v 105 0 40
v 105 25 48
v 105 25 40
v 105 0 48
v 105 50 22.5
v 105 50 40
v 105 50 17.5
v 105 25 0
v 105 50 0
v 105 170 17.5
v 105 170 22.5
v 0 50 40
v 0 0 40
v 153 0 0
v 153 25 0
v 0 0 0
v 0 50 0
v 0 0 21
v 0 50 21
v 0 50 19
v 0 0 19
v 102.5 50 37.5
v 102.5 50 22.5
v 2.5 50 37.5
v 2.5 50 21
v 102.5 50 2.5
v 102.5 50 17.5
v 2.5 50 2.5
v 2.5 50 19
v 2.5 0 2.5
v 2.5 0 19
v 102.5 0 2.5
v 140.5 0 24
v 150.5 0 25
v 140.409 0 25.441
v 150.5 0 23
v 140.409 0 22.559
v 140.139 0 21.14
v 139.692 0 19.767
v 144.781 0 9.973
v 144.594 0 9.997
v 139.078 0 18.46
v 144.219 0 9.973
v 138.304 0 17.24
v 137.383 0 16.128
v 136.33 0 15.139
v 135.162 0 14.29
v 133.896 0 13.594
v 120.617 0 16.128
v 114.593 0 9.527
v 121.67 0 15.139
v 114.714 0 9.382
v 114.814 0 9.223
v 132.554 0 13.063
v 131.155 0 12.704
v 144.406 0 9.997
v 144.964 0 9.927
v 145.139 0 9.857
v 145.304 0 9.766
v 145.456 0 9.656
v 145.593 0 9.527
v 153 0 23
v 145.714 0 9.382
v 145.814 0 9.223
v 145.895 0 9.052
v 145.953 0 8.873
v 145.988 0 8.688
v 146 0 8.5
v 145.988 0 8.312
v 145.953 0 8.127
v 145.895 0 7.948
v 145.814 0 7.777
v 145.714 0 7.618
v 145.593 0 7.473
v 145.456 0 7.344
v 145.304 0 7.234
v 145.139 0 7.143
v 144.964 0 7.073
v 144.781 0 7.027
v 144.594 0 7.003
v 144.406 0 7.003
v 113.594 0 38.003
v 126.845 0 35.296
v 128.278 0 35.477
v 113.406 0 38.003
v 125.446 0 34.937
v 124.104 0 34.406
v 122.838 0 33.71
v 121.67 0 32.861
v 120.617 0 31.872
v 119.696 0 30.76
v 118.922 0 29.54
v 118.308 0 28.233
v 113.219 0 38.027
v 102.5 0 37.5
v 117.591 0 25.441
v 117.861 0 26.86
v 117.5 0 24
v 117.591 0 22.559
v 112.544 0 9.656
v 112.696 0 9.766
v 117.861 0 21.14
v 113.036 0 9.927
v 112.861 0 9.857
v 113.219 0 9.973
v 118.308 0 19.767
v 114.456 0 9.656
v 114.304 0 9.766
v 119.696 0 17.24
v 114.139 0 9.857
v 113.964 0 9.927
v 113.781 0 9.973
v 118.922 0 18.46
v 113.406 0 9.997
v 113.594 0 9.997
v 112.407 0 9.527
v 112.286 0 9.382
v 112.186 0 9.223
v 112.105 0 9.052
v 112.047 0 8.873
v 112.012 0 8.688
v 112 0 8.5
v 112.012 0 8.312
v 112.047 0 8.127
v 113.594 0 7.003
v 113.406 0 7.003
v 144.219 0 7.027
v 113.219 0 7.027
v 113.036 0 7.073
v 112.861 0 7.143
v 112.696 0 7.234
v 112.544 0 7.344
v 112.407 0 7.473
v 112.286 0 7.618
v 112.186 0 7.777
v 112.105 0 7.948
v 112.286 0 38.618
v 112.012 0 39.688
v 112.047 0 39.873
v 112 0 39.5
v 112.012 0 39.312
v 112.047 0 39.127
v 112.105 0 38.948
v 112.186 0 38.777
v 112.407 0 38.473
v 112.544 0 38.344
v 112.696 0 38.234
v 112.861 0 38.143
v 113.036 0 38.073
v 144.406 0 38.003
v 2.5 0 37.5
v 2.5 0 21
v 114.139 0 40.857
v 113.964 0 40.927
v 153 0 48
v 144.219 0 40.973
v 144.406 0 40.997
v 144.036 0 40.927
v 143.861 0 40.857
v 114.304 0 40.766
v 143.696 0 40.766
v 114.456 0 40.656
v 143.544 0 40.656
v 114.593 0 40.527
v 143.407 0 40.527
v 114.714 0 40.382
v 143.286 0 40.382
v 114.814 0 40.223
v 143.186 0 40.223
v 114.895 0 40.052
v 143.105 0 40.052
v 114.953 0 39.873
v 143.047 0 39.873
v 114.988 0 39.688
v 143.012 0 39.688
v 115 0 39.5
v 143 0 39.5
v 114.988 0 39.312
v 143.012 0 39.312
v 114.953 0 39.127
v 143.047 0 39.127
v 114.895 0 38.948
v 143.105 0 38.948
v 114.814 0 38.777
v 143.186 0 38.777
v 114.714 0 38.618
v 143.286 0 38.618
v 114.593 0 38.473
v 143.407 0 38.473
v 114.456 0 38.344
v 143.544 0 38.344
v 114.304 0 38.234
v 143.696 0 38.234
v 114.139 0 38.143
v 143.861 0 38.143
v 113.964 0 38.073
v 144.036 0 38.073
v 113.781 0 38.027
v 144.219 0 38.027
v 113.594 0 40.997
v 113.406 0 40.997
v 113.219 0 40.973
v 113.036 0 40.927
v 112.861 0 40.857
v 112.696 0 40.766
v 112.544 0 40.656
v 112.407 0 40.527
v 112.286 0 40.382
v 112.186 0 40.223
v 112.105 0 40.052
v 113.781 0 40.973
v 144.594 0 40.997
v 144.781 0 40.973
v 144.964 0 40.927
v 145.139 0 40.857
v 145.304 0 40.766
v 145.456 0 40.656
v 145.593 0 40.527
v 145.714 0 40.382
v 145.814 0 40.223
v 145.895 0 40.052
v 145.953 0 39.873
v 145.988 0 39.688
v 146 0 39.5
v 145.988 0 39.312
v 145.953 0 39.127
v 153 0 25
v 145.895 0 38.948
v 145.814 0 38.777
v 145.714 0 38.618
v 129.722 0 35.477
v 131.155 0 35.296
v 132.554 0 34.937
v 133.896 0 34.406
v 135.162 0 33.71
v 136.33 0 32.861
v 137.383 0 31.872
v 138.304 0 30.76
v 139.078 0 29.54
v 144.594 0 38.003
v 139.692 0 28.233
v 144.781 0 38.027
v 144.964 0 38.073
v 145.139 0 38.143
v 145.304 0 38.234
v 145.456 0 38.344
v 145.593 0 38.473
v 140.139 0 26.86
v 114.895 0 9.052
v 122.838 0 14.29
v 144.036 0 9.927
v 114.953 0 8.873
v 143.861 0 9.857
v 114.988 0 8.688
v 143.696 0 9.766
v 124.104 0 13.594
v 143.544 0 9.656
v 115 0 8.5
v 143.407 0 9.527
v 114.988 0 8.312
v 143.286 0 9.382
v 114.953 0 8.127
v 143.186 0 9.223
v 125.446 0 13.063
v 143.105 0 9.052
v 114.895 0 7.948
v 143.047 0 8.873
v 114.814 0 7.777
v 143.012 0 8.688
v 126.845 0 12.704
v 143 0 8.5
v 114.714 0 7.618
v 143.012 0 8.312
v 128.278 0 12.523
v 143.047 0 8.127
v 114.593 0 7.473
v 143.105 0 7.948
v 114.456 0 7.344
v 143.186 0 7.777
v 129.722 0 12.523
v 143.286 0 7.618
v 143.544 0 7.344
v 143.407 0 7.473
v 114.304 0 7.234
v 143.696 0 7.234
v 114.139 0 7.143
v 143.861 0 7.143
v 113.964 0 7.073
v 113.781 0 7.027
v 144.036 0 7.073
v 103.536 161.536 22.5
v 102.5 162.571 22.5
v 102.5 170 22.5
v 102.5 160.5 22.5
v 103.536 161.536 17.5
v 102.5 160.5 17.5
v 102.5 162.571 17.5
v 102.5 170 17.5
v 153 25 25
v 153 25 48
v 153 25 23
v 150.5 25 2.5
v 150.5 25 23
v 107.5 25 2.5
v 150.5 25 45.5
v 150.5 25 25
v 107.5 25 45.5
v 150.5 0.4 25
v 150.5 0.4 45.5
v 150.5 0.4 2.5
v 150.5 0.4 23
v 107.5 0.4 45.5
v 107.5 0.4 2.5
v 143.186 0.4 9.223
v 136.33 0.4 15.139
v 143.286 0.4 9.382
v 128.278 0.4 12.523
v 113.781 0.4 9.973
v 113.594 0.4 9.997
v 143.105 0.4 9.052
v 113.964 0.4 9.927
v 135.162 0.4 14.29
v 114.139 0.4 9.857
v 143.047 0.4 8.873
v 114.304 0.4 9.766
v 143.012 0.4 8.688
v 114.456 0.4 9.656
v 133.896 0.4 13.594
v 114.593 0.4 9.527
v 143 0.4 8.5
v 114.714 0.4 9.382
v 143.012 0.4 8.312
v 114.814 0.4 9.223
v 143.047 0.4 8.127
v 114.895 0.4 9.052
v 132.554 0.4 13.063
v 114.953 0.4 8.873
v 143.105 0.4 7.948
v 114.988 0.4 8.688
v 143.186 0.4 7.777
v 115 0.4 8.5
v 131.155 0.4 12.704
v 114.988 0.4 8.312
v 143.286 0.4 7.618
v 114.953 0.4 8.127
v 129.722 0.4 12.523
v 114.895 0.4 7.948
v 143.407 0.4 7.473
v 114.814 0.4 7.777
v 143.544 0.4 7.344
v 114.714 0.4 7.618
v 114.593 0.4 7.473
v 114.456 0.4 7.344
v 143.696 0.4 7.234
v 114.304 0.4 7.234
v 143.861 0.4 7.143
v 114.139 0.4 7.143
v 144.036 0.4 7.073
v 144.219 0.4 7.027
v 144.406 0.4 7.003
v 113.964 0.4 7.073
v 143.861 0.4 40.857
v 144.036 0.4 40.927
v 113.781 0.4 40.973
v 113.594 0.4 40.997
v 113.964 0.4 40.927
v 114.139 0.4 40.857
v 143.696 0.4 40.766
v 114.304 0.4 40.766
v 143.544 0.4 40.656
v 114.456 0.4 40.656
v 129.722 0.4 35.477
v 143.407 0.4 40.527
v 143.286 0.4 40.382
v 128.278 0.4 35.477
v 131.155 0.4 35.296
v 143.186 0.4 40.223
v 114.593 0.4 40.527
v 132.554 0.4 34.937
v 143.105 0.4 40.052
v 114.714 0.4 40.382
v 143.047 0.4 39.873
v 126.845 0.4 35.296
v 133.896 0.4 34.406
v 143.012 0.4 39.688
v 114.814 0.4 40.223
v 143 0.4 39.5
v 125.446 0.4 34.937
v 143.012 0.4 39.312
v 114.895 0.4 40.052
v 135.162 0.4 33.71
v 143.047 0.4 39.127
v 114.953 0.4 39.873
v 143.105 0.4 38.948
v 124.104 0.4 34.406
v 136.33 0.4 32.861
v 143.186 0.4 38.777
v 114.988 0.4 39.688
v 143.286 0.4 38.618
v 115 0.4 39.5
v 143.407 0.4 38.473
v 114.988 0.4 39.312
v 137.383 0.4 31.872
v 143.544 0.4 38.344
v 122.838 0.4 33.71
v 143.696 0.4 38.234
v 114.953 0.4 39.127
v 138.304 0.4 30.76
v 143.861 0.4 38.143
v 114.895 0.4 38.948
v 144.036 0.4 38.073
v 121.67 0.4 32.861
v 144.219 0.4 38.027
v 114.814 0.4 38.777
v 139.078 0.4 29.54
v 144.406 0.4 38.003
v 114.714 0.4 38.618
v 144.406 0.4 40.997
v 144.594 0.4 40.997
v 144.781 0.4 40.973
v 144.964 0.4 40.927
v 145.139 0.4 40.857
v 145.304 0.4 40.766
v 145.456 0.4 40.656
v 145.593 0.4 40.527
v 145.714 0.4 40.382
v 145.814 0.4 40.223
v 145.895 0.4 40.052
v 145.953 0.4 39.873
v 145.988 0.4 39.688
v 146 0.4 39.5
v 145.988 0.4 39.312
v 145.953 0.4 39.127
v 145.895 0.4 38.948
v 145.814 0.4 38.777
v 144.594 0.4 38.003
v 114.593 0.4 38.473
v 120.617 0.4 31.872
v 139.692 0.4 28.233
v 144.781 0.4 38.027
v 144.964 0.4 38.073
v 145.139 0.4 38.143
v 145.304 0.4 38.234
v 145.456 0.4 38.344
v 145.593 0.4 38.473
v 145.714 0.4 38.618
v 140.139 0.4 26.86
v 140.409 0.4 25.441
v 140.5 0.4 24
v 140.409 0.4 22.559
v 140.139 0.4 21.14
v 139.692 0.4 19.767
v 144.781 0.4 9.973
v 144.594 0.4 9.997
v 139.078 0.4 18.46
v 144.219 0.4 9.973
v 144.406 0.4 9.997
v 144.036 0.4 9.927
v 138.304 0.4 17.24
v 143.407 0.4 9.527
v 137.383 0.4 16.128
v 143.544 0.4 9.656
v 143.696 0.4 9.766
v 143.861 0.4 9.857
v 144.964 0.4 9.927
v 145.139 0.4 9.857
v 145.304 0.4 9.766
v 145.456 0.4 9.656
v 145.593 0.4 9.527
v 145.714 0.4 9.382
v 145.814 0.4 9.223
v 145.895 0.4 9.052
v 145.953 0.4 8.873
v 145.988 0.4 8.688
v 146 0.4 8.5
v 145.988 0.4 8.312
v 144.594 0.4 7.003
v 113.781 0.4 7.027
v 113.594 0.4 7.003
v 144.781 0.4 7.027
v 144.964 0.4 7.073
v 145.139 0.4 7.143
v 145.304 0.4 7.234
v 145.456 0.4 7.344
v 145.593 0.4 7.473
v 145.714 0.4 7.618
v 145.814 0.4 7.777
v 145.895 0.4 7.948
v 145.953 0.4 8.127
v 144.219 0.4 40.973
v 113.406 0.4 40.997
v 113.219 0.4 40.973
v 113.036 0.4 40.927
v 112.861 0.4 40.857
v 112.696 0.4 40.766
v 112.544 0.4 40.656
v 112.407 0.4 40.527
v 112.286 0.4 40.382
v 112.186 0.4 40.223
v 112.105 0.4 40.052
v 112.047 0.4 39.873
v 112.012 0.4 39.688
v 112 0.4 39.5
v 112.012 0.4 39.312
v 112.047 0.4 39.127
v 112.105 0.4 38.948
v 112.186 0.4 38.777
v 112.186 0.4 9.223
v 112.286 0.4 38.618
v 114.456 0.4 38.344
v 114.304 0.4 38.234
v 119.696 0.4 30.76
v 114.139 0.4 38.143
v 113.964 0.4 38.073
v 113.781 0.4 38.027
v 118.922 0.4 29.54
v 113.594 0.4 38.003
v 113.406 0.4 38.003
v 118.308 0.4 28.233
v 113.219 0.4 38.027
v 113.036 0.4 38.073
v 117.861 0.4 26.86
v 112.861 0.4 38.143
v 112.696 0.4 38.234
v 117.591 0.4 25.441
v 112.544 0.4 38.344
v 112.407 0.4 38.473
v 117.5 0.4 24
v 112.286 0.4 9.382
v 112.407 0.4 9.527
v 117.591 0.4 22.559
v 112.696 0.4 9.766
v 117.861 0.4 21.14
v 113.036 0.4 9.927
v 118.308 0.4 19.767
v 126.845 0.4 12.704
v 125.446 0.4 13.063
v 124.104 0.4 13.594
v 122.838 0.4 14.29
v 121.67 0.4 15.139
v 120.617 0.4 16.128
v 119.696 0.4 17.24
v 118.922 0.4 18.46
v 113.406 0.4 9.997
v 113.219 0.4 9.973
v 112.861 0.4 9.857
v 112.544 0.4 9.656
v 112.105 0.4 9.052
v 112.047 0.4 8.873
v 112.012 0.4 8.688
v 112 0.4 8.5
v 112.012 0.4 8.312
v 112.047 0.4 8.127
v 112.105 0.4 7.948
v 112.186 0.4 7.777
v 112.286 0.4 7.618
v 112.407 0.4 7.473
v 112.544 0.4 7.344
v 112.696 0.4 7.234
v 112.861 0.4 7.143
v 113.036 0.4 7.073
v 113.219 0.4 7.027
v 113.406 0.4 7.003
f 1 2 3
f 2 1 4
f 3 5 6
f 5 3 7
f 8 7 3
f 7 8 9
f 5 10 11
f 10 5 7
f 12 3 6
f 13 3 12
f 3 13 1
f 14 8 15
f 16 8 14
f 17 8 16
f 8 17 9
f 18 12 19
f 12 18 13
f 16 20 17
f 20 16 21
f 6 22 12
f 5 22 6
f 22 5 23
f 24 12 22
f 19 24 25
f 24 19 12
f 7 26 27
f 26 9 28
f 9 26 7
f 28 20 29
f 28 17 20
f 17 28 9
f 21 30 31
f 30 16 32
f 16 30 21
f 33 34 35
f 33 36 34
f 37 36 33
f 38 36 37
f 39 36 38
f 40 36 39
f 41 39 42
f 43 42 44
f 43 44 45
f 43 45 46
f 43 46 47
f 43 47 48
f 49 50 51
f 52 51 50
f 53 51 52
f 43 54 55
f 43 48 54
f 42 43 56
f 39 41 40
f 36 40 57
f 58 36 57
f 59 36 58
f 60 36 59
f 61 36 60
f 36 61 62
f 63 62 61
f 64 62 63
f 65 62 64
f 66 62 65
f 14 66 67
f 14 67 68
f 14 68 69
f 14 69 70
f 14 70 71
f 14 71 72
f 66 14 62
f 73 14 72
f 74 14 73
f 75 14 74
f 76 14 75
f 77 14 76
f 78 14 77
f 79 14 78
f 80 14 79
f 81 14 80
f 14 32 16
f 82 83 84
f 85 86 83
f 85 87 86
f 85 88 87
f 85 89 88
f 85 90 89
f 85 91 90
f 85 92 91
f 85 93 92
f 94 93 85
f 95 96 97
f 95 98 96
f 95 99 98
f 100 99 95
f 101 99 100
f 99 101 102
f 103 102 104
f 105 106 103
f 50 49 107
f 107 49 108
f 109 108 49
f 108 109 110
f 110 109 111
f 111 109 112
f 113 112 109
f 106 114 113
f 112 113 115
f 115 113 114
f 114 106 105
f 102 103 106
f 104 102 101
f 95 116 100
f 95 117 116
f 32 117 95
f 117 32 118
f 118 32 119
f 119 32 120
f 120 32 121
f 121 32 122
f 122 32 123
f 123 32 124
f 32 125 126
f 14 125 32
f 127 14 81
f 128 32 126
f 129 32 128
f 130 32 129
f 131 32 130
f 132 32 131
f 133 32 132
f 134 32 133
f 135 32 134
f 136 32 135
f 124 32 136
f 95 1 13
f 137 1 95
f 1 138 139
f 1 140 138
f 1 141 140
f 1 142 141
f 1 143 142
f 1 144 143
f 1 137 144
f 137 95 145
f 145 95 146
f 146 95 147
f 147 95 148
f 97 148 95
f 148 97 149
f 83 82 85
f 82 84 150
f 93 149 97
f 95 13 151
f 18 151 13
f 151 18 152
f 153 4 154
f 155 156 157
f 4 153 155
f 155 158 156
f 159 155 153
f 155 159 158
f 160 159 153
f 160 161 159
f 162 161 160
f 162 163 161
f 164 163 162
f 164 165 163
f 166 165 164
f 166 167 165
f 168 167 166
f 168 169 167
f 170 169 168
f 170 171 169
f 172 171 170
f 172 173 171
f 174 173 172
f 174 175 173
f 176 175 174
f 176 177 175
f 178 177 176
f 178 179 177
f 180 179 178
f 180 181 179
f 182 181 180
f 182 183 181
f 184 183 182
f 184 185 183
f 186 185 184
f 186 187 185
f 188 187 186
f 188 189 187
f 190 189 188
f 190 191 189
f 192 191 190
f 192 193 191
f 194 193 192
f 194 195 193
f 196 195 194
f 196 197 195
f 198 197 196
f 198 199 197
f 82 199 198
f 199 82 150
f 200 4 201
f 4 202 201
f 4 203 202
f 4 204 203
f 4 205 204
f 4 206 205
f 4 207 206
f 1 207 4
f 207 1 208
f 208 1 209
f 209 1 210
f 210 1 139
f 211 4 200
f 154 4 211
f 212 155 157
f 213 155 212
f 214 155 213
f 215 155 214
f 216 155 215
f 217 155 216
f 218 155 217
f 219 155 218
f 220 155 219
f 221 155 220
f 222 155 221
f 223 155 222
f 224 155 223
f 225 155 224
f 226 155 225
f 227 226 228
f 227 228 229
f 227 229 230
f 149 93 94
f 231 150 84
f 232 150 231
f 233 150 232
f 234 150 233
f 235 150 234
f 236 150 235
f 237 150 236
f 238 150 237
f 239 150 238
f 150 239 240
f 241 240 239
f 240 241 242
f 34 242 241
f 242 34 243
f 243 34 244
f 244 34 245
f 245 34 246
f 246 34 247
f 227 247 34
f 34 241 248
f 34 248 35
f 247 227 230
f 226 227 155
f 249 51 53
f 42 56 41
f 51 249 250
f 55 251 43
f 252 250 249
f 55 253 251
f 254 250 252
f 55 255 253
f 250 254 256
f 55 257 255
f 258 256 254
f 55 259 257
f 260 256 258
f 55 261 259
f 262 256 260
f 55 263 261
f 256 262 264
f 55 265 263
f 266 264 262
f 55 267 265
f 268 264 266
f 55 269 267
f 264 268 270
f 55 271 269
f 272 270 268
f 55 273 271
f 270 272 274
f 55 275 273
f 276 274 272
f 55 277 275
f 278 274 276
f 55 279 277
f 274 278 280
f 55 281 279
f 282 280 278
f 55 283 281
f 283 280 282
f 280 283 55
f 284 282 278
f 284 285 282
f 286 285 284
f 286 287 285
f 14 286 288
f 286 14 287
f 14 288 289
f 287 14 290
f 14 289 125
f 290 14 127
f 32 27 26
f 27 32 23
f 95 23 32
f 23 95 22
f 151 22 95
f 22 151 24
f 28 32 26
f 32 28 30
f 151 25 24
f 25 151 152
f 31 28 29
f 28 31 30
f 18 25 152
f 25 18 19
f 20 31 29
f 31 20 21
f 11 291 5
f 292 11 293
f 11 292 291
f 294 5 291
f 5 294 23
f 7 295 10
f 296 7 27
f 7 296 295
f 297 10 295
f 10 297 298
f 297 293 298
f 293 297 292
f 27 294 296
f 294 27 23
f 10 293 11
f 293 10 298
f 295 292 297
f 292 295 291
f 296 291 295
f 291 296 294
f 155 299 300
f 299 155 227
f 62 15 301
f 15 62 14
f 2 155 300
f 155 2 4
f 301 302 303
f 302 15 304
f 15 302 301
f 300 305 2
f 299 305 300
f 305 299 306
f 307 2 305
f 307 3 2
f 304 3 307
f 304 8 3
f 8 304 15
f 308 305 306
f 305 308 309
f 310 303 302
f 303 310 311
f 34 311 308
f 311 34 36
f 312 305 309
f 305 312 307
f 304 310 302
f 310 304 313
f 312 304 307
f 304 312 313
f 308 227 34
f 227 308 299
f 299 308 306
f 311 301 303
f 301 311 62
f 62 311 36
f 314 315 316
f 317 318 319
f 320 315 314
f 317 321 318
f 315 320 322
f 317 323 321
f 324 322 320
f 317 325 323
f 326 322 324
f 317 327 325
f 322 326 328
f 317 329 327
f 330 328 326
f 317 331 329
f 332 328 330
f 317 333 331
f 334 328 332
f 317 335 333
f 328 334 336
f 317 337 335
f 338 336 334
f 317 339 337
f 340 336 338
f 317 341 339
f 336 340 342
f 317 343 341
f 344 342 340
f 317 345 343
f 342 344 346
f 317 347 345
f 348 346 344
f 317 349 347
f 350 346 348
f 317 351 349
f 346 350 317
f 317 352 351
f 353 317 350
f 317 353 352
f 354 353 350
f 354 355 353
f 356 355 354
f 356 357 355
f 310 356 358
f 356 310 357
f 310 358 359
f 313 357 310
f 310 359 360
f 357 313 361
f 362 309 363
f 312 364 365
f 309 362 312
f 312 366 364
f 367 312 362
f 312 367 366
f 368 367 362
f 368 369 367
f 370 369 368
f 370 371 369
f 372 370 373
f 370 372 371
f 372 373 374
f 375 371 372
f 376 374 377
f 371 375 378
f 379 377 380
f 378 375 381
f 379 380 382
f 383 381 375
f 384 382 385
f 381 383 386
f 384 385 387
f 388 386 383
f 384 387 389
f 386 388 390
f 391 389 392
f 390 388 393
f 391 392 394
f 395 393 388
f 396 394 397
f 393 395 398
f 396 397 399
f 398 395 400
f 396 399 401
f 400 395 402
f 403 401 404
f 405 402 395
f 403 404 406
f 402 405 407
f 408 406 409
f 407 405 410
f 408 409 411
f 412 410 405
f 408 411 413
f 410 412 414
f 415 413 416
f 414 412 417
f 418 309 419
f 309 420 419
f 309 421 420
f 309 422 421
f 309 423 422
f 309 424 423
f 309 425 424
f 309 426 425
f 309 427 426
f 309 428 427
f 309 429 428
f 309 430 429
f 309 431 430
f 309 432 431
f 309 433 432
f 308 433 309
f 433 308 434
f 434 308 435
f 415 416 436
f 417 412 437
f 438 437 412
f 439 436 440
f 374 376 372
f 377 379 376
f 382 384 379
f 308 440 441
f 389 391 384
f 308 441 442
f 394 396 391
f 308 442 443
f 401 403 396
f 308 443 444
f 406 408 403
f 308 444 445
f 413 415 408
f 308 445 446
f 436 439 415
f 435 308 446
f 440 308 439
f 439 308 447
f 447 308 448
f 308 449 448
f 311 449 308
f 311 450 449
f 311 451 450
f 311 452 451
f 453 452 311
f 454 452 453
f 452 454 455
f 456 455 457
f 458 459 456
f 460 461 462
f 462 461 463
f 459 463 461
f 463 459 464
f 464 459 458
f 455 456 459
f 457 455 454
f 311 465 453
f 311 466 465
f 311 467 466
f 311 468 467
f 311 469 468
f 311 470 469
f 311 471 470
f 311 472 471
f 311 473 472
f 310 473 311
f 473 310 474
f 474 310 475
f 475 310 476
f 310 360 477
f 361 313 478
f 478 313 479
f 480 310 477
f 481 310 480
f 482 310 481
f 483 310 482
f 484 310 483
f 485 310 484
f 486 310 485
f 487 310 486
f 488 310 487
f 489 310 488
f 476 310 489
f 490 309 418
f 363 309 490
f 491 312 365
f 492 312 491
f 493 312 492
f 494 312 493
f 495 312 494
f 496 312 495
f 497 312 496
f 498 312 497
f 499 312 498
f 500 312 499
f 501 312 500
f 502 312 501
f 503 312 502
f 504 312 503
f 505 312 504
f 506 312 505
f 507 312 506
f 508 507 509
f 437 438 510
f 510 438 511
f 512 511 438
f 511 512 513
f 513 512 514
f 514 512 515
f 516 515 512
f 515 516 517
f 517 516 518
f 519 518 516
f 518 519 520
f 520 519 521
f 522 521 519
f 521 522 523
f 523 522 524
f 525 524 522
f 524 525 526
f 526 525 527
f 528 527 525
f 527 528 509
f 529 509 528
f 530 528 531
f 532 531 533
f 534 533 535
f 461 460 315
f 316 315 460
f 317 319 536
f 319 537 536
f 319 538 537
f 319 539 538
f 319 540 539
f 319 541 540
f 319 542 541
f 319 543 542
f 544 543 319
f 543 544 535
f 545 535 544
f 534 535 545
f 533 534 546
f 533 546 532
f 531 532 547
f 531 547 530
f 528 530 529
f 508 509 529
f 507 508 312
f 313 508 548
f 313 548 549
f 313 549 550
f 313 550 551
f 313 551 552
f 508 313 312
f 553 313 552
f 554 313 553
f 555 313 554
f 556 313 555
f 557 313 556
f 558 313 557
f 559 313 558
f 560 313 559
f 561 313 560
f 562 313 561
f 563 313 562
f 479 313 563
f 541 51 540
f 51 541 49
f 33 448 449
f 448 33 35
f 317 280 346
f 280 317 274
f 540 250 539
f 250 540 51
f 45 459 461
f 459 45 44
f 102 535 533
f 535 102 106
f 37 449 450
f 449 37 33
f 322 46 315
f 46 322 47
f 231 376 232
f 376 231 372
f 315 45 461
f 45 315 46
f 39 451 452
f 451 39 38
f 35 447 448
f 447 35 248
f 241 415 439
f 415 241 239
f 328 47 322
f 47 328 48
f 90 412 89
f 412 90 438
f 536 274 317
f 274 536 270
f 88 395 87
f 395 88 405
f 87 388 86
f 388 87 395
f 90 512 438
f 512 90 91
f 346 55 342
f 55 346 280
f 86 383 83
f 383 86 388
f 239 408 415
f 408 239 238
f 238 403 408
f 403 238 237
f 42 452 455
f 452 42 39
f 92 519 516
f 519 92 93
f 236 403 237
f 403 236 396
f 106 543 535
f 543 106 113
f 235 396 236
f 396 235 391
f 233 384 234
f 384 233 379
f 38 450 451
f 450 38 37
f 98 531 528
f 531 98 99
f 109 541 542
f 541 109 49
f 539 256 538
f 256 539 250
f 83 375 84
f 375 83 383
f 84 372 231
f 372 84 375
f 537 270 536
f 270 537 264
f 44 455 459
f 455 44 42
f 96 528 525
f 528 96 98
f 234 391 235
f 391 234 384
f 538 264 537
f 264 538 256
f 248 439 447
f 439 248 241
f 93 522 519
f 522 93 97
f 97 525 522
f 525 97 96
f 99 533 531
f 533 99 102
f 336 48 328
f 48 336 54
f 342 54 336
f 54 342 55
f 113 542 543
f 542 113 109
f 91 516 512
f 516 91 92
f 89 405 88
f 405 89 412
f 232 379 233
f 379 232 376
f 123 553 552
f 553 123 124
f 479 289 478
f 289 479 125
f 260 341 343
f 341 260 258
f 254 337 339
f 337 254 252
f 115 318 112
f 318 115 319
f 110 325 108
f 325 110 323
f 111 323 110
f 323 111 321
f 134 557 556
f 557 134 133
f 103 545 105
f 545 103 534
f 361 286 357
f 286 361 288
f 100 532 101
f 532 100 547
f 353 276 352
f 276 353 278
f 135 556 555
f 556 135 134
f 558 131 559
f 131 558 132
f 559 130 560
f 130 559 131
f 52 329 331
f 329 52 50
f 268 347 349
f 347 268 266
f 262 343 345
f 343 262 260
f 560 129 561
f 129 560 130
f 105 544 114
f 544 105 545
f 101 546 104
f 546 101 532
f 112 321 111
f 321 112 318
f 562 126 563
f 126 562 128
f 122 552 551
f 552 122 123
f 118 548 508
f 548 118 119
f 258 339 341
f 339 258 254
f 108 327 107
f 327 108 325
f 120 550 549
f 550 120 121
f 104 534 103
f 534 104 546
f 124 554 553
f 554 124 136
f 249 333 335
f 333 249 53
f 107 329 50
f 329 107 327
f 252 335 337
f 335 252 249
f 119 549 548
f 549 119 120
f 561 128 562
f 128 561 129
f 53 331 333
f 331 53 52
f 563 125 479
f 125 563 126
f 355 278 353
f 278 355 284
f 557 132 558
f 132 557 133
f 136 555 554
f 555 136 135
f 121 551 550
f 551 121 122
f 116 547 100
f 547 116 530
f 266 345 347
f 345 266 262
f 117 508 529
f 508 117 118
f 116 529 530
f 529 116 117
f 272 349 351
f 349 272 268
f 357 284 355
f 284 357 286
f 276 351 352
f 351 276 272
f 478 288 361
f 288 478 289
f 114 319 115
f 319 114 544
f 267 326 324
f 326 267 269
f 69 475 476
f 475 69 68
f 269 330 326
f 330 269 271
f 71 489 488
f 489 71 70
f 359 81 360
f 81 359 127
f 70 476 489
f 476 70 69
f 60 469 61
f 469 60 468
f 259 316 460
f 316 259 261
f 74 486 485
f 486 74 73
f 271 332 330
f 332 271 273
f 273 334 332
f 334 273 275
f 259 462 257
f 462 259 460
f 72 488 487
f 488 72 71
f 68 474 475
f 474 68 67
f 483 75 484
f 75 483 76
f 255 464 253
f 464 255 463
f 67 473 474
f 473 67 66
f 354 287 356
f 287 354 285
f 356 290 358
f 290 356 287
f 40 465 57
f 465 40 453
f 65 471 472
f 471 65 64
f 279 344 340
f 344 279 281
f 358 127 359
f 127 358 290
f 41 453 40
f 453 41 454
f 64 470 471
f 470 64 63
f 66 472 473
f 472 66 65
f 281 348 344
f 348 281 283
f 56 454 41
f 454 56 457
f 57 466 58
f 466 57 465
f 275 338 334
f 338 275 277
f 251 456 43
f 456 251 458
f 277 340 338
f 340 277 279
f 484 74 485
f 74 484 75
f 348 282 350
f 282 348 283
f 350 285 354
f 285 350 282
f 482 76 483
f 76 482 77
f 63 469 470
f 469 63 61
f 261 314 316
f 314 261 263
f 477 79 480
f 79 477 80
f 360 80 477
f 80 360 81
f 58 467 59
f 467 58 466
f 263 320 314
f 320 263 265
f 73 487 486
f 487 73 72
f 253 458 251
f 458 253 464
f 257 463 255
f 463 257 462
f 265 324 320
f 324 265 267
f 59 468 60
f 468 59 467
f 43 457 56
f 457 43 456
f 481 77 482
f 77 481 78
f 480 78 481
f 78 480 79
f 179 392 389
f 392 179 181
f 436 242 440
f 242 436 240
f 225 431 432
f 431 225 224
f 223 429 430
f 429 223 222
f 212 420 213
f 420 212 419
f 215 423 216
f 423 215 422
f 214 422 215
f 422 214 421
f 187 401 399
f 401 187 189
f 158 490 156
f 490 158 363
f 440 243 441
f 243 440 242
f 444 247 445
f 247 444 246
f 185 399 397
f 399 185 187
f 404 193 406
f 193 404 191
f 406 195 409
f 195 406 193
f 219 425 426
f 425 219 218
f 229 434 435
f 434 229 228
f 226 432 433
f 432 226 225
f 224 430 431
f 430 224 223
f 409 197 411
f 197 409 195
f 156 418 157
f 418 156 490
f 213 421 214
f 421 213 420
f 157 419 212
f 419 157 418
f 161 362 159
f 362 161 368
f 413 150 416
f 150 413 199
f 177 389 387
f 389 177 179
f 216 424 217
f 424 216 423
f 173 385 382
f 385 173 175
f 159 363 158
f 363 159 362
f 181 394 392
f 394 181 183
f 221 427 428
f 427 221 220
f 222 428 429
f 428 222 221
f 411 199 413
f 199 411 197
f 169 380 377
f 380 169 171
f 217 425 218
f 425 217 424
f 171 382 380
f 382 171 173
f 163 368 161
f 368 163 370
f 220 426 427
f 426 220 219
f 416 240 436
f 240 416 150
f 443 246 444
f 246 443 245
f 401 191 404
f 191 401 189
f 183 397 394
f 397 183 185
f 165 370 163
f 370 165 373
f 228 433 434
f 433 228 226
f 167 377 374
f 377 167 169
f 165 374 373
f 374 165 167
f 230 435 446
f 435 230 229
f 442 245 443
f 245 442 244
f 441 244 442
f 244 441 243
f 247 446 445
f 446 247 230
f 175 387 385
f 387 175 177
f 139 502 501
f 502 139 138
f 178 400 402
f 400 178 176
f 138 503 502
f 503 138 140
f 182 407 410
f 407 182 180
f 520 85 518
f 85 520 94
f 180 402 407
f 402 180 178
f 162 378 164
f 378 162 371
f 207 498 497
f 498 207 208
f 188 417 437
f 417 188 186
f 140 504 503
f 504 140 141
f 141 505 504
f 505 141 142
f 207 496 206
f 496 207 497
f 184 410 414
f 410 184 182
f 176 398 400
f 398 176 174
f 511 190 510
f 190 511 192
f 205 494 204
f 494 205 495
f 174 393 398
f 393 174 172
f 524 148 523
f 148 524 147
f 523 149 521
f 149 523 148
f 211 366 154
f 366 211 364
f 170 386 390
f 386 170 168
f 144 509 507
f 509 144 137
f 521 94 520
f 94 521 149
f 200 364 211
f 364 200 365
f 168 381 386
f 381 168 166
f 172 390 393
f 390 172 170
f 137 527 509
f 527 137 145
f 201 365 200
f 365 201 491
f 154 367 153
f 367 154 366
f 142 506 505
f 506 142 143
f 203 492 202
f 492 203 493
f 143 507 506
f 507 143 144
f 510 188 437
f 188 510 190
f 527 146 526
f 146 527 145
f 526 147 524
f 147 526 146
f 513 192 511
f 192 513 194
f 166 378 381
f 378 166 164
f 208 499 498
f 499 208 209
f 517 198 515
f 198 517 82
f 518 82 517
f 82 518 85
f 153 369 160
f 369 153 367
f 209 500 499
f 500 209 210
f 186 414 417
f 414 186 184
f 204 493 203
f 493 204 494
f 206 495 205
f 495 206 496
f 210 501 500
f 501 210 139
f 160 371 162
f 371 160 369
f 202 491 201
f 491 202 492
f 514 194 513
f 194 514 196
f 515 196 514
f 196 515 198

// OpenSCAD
// amp holder
$caseTh = 5;
$innerCase = [100, 35];
$outerCase = [$innerCase[0] + $caseTh, $innerCase[1] + $caseTh];
$len = 50;

// stepper holder
$stepperInner = [43, 43];
$stepperOuter = [$stepperInner[0] + $caseTh, $stepperInner[1] + $caseTh];
$stepperLen = 25;

// cutouts for attaching clip
$clipTh = 2;

// stepper attachment
$stepperFaceTh = 0.4;
$boltsDist = 6; //measured at 5mm
$boltsDia = 3;
$stepperDia = 23; //measured at 22mm

// wire arm holder and stuff
$wireHolder = [$caseTh / 2, 5];
$wireHolderLen = 120;

$proto = [81, 51];
$protoTh = 1;
$protoPosY = $len + ($wireHolderLen * (20 / 100)); //20% down wire arm
$protoBottomBuff = 5;
$protoTopBuff = 1;

$fn = 50;

// Build Amp Case
difference() {
	cube(size = [$outerCase[0], $len, $outerCase[1]]);
	translate([($outerCase[0] - $innerCase[0]) / 2, 0, ($outerCase[1] - $innerCase[1]) / 2])
	cube(size = [$innerCase[0], $len, $innerCase[1]]);
	// clip opening
	translate([0, 0, ($outerCase[1] / 2) - ($clipTh / 2)])
	cube(size = [$caseTh, $len, $clipTh]);
}

// Build Stepper Holder
difference() {
	translate([$outerCase[0], 0, 0])
	cube(size = [$stepperOuter[0], $stepperLen, $stepperOuter[1]]);
	translate([$outerCase[0] + (($stepperOuter[0] - $stepperInner[0]) / 2), 0, ($stepperOuter[1] - $stepperInner[1]) / 2])
	cube(size = [$stepperInner[0], $stepperLen, $stepperInner[1]]);
	// clip opening
	translate([$outerCase[0] + $stepperOuter[0] - $caseTh, 0, ($stepperOuter[1] / 2) - ($clipTh / 2)])
	cube(size = [$caseTh, $len, $clipTh]);
}

translate([$outerCase[0] + $caseTh / 2, 0, $caseTh / 2])
difference() {
	cube(size = [$stepperInner[0], $stepperFaceTh, $stepperInner[1]]);
	translate([$stepperInner[0] / 2, 0, $stepperInner[1] / 2])
	rotate([-90,0,0])
	cylinder(h = $stepperFaceTh, r = $stepperDia / 2);
	translate([$boltsDist, 0, $boltsDist])
	rotate([-90,0,0])
	cylinder(h = $stepperFaceTh, r = $boltsDia / 2);
	translate([$stepperInner[0] - $boltsDist, 0, $boltsDist])
	rotate([-90,0,0])
	cylinder(h = $stepperFaceTh, r = $boltsDia / 2);
	translate([$stepperInner[0] - $boltsDist, 0, $stepperInner[1] - $boltsDist])
	rotate([-90,0,0])
	cylinder(h = $stepperFaceTh, r = $boltsDia / 2);
	translate([$boltsDist, 0, $stepperInner[1] - $boltsDist])
	rotate([-90,0,0])
	cylinder(h = $stepperFaceTh, r = $boltsDia / 2);
}

// Add wire arm and ziptie notch
difference() {
	translate([$outerCase[0] - ($caseTh / 2), $len, ($outerCase[1] - $caseTh) / 2])
	cube(size = [$wireHolder[0], $wireHolderLen, $wireHolder[1]]);
	translate([$outerCase[0] - ($caseTh / 2) - ($wireHolder[1] / 2), $len + $wireHolderLen - ($wireHolderLen * (10 / 100)), ($outerCase[1] - $caseTh) / 2])
	rotate([0, 0, 45])
	cube($wireHolder[1]);
}

// Add protoboard clip
translate([$outerCase[0] - ($caseTh / 2), $protoPosY, (($outerCase[1] - $caseTh) / 2) - ($proto[1] / 2) + $wireHolder[0]])
difference() {
	//cube(size = [$protoBottomBuff + $protoTh + $protoTopBuff, $proto[0], $proto[1]]);
	// cut angle to make it printable
	//polyhedron([
		//[
}
